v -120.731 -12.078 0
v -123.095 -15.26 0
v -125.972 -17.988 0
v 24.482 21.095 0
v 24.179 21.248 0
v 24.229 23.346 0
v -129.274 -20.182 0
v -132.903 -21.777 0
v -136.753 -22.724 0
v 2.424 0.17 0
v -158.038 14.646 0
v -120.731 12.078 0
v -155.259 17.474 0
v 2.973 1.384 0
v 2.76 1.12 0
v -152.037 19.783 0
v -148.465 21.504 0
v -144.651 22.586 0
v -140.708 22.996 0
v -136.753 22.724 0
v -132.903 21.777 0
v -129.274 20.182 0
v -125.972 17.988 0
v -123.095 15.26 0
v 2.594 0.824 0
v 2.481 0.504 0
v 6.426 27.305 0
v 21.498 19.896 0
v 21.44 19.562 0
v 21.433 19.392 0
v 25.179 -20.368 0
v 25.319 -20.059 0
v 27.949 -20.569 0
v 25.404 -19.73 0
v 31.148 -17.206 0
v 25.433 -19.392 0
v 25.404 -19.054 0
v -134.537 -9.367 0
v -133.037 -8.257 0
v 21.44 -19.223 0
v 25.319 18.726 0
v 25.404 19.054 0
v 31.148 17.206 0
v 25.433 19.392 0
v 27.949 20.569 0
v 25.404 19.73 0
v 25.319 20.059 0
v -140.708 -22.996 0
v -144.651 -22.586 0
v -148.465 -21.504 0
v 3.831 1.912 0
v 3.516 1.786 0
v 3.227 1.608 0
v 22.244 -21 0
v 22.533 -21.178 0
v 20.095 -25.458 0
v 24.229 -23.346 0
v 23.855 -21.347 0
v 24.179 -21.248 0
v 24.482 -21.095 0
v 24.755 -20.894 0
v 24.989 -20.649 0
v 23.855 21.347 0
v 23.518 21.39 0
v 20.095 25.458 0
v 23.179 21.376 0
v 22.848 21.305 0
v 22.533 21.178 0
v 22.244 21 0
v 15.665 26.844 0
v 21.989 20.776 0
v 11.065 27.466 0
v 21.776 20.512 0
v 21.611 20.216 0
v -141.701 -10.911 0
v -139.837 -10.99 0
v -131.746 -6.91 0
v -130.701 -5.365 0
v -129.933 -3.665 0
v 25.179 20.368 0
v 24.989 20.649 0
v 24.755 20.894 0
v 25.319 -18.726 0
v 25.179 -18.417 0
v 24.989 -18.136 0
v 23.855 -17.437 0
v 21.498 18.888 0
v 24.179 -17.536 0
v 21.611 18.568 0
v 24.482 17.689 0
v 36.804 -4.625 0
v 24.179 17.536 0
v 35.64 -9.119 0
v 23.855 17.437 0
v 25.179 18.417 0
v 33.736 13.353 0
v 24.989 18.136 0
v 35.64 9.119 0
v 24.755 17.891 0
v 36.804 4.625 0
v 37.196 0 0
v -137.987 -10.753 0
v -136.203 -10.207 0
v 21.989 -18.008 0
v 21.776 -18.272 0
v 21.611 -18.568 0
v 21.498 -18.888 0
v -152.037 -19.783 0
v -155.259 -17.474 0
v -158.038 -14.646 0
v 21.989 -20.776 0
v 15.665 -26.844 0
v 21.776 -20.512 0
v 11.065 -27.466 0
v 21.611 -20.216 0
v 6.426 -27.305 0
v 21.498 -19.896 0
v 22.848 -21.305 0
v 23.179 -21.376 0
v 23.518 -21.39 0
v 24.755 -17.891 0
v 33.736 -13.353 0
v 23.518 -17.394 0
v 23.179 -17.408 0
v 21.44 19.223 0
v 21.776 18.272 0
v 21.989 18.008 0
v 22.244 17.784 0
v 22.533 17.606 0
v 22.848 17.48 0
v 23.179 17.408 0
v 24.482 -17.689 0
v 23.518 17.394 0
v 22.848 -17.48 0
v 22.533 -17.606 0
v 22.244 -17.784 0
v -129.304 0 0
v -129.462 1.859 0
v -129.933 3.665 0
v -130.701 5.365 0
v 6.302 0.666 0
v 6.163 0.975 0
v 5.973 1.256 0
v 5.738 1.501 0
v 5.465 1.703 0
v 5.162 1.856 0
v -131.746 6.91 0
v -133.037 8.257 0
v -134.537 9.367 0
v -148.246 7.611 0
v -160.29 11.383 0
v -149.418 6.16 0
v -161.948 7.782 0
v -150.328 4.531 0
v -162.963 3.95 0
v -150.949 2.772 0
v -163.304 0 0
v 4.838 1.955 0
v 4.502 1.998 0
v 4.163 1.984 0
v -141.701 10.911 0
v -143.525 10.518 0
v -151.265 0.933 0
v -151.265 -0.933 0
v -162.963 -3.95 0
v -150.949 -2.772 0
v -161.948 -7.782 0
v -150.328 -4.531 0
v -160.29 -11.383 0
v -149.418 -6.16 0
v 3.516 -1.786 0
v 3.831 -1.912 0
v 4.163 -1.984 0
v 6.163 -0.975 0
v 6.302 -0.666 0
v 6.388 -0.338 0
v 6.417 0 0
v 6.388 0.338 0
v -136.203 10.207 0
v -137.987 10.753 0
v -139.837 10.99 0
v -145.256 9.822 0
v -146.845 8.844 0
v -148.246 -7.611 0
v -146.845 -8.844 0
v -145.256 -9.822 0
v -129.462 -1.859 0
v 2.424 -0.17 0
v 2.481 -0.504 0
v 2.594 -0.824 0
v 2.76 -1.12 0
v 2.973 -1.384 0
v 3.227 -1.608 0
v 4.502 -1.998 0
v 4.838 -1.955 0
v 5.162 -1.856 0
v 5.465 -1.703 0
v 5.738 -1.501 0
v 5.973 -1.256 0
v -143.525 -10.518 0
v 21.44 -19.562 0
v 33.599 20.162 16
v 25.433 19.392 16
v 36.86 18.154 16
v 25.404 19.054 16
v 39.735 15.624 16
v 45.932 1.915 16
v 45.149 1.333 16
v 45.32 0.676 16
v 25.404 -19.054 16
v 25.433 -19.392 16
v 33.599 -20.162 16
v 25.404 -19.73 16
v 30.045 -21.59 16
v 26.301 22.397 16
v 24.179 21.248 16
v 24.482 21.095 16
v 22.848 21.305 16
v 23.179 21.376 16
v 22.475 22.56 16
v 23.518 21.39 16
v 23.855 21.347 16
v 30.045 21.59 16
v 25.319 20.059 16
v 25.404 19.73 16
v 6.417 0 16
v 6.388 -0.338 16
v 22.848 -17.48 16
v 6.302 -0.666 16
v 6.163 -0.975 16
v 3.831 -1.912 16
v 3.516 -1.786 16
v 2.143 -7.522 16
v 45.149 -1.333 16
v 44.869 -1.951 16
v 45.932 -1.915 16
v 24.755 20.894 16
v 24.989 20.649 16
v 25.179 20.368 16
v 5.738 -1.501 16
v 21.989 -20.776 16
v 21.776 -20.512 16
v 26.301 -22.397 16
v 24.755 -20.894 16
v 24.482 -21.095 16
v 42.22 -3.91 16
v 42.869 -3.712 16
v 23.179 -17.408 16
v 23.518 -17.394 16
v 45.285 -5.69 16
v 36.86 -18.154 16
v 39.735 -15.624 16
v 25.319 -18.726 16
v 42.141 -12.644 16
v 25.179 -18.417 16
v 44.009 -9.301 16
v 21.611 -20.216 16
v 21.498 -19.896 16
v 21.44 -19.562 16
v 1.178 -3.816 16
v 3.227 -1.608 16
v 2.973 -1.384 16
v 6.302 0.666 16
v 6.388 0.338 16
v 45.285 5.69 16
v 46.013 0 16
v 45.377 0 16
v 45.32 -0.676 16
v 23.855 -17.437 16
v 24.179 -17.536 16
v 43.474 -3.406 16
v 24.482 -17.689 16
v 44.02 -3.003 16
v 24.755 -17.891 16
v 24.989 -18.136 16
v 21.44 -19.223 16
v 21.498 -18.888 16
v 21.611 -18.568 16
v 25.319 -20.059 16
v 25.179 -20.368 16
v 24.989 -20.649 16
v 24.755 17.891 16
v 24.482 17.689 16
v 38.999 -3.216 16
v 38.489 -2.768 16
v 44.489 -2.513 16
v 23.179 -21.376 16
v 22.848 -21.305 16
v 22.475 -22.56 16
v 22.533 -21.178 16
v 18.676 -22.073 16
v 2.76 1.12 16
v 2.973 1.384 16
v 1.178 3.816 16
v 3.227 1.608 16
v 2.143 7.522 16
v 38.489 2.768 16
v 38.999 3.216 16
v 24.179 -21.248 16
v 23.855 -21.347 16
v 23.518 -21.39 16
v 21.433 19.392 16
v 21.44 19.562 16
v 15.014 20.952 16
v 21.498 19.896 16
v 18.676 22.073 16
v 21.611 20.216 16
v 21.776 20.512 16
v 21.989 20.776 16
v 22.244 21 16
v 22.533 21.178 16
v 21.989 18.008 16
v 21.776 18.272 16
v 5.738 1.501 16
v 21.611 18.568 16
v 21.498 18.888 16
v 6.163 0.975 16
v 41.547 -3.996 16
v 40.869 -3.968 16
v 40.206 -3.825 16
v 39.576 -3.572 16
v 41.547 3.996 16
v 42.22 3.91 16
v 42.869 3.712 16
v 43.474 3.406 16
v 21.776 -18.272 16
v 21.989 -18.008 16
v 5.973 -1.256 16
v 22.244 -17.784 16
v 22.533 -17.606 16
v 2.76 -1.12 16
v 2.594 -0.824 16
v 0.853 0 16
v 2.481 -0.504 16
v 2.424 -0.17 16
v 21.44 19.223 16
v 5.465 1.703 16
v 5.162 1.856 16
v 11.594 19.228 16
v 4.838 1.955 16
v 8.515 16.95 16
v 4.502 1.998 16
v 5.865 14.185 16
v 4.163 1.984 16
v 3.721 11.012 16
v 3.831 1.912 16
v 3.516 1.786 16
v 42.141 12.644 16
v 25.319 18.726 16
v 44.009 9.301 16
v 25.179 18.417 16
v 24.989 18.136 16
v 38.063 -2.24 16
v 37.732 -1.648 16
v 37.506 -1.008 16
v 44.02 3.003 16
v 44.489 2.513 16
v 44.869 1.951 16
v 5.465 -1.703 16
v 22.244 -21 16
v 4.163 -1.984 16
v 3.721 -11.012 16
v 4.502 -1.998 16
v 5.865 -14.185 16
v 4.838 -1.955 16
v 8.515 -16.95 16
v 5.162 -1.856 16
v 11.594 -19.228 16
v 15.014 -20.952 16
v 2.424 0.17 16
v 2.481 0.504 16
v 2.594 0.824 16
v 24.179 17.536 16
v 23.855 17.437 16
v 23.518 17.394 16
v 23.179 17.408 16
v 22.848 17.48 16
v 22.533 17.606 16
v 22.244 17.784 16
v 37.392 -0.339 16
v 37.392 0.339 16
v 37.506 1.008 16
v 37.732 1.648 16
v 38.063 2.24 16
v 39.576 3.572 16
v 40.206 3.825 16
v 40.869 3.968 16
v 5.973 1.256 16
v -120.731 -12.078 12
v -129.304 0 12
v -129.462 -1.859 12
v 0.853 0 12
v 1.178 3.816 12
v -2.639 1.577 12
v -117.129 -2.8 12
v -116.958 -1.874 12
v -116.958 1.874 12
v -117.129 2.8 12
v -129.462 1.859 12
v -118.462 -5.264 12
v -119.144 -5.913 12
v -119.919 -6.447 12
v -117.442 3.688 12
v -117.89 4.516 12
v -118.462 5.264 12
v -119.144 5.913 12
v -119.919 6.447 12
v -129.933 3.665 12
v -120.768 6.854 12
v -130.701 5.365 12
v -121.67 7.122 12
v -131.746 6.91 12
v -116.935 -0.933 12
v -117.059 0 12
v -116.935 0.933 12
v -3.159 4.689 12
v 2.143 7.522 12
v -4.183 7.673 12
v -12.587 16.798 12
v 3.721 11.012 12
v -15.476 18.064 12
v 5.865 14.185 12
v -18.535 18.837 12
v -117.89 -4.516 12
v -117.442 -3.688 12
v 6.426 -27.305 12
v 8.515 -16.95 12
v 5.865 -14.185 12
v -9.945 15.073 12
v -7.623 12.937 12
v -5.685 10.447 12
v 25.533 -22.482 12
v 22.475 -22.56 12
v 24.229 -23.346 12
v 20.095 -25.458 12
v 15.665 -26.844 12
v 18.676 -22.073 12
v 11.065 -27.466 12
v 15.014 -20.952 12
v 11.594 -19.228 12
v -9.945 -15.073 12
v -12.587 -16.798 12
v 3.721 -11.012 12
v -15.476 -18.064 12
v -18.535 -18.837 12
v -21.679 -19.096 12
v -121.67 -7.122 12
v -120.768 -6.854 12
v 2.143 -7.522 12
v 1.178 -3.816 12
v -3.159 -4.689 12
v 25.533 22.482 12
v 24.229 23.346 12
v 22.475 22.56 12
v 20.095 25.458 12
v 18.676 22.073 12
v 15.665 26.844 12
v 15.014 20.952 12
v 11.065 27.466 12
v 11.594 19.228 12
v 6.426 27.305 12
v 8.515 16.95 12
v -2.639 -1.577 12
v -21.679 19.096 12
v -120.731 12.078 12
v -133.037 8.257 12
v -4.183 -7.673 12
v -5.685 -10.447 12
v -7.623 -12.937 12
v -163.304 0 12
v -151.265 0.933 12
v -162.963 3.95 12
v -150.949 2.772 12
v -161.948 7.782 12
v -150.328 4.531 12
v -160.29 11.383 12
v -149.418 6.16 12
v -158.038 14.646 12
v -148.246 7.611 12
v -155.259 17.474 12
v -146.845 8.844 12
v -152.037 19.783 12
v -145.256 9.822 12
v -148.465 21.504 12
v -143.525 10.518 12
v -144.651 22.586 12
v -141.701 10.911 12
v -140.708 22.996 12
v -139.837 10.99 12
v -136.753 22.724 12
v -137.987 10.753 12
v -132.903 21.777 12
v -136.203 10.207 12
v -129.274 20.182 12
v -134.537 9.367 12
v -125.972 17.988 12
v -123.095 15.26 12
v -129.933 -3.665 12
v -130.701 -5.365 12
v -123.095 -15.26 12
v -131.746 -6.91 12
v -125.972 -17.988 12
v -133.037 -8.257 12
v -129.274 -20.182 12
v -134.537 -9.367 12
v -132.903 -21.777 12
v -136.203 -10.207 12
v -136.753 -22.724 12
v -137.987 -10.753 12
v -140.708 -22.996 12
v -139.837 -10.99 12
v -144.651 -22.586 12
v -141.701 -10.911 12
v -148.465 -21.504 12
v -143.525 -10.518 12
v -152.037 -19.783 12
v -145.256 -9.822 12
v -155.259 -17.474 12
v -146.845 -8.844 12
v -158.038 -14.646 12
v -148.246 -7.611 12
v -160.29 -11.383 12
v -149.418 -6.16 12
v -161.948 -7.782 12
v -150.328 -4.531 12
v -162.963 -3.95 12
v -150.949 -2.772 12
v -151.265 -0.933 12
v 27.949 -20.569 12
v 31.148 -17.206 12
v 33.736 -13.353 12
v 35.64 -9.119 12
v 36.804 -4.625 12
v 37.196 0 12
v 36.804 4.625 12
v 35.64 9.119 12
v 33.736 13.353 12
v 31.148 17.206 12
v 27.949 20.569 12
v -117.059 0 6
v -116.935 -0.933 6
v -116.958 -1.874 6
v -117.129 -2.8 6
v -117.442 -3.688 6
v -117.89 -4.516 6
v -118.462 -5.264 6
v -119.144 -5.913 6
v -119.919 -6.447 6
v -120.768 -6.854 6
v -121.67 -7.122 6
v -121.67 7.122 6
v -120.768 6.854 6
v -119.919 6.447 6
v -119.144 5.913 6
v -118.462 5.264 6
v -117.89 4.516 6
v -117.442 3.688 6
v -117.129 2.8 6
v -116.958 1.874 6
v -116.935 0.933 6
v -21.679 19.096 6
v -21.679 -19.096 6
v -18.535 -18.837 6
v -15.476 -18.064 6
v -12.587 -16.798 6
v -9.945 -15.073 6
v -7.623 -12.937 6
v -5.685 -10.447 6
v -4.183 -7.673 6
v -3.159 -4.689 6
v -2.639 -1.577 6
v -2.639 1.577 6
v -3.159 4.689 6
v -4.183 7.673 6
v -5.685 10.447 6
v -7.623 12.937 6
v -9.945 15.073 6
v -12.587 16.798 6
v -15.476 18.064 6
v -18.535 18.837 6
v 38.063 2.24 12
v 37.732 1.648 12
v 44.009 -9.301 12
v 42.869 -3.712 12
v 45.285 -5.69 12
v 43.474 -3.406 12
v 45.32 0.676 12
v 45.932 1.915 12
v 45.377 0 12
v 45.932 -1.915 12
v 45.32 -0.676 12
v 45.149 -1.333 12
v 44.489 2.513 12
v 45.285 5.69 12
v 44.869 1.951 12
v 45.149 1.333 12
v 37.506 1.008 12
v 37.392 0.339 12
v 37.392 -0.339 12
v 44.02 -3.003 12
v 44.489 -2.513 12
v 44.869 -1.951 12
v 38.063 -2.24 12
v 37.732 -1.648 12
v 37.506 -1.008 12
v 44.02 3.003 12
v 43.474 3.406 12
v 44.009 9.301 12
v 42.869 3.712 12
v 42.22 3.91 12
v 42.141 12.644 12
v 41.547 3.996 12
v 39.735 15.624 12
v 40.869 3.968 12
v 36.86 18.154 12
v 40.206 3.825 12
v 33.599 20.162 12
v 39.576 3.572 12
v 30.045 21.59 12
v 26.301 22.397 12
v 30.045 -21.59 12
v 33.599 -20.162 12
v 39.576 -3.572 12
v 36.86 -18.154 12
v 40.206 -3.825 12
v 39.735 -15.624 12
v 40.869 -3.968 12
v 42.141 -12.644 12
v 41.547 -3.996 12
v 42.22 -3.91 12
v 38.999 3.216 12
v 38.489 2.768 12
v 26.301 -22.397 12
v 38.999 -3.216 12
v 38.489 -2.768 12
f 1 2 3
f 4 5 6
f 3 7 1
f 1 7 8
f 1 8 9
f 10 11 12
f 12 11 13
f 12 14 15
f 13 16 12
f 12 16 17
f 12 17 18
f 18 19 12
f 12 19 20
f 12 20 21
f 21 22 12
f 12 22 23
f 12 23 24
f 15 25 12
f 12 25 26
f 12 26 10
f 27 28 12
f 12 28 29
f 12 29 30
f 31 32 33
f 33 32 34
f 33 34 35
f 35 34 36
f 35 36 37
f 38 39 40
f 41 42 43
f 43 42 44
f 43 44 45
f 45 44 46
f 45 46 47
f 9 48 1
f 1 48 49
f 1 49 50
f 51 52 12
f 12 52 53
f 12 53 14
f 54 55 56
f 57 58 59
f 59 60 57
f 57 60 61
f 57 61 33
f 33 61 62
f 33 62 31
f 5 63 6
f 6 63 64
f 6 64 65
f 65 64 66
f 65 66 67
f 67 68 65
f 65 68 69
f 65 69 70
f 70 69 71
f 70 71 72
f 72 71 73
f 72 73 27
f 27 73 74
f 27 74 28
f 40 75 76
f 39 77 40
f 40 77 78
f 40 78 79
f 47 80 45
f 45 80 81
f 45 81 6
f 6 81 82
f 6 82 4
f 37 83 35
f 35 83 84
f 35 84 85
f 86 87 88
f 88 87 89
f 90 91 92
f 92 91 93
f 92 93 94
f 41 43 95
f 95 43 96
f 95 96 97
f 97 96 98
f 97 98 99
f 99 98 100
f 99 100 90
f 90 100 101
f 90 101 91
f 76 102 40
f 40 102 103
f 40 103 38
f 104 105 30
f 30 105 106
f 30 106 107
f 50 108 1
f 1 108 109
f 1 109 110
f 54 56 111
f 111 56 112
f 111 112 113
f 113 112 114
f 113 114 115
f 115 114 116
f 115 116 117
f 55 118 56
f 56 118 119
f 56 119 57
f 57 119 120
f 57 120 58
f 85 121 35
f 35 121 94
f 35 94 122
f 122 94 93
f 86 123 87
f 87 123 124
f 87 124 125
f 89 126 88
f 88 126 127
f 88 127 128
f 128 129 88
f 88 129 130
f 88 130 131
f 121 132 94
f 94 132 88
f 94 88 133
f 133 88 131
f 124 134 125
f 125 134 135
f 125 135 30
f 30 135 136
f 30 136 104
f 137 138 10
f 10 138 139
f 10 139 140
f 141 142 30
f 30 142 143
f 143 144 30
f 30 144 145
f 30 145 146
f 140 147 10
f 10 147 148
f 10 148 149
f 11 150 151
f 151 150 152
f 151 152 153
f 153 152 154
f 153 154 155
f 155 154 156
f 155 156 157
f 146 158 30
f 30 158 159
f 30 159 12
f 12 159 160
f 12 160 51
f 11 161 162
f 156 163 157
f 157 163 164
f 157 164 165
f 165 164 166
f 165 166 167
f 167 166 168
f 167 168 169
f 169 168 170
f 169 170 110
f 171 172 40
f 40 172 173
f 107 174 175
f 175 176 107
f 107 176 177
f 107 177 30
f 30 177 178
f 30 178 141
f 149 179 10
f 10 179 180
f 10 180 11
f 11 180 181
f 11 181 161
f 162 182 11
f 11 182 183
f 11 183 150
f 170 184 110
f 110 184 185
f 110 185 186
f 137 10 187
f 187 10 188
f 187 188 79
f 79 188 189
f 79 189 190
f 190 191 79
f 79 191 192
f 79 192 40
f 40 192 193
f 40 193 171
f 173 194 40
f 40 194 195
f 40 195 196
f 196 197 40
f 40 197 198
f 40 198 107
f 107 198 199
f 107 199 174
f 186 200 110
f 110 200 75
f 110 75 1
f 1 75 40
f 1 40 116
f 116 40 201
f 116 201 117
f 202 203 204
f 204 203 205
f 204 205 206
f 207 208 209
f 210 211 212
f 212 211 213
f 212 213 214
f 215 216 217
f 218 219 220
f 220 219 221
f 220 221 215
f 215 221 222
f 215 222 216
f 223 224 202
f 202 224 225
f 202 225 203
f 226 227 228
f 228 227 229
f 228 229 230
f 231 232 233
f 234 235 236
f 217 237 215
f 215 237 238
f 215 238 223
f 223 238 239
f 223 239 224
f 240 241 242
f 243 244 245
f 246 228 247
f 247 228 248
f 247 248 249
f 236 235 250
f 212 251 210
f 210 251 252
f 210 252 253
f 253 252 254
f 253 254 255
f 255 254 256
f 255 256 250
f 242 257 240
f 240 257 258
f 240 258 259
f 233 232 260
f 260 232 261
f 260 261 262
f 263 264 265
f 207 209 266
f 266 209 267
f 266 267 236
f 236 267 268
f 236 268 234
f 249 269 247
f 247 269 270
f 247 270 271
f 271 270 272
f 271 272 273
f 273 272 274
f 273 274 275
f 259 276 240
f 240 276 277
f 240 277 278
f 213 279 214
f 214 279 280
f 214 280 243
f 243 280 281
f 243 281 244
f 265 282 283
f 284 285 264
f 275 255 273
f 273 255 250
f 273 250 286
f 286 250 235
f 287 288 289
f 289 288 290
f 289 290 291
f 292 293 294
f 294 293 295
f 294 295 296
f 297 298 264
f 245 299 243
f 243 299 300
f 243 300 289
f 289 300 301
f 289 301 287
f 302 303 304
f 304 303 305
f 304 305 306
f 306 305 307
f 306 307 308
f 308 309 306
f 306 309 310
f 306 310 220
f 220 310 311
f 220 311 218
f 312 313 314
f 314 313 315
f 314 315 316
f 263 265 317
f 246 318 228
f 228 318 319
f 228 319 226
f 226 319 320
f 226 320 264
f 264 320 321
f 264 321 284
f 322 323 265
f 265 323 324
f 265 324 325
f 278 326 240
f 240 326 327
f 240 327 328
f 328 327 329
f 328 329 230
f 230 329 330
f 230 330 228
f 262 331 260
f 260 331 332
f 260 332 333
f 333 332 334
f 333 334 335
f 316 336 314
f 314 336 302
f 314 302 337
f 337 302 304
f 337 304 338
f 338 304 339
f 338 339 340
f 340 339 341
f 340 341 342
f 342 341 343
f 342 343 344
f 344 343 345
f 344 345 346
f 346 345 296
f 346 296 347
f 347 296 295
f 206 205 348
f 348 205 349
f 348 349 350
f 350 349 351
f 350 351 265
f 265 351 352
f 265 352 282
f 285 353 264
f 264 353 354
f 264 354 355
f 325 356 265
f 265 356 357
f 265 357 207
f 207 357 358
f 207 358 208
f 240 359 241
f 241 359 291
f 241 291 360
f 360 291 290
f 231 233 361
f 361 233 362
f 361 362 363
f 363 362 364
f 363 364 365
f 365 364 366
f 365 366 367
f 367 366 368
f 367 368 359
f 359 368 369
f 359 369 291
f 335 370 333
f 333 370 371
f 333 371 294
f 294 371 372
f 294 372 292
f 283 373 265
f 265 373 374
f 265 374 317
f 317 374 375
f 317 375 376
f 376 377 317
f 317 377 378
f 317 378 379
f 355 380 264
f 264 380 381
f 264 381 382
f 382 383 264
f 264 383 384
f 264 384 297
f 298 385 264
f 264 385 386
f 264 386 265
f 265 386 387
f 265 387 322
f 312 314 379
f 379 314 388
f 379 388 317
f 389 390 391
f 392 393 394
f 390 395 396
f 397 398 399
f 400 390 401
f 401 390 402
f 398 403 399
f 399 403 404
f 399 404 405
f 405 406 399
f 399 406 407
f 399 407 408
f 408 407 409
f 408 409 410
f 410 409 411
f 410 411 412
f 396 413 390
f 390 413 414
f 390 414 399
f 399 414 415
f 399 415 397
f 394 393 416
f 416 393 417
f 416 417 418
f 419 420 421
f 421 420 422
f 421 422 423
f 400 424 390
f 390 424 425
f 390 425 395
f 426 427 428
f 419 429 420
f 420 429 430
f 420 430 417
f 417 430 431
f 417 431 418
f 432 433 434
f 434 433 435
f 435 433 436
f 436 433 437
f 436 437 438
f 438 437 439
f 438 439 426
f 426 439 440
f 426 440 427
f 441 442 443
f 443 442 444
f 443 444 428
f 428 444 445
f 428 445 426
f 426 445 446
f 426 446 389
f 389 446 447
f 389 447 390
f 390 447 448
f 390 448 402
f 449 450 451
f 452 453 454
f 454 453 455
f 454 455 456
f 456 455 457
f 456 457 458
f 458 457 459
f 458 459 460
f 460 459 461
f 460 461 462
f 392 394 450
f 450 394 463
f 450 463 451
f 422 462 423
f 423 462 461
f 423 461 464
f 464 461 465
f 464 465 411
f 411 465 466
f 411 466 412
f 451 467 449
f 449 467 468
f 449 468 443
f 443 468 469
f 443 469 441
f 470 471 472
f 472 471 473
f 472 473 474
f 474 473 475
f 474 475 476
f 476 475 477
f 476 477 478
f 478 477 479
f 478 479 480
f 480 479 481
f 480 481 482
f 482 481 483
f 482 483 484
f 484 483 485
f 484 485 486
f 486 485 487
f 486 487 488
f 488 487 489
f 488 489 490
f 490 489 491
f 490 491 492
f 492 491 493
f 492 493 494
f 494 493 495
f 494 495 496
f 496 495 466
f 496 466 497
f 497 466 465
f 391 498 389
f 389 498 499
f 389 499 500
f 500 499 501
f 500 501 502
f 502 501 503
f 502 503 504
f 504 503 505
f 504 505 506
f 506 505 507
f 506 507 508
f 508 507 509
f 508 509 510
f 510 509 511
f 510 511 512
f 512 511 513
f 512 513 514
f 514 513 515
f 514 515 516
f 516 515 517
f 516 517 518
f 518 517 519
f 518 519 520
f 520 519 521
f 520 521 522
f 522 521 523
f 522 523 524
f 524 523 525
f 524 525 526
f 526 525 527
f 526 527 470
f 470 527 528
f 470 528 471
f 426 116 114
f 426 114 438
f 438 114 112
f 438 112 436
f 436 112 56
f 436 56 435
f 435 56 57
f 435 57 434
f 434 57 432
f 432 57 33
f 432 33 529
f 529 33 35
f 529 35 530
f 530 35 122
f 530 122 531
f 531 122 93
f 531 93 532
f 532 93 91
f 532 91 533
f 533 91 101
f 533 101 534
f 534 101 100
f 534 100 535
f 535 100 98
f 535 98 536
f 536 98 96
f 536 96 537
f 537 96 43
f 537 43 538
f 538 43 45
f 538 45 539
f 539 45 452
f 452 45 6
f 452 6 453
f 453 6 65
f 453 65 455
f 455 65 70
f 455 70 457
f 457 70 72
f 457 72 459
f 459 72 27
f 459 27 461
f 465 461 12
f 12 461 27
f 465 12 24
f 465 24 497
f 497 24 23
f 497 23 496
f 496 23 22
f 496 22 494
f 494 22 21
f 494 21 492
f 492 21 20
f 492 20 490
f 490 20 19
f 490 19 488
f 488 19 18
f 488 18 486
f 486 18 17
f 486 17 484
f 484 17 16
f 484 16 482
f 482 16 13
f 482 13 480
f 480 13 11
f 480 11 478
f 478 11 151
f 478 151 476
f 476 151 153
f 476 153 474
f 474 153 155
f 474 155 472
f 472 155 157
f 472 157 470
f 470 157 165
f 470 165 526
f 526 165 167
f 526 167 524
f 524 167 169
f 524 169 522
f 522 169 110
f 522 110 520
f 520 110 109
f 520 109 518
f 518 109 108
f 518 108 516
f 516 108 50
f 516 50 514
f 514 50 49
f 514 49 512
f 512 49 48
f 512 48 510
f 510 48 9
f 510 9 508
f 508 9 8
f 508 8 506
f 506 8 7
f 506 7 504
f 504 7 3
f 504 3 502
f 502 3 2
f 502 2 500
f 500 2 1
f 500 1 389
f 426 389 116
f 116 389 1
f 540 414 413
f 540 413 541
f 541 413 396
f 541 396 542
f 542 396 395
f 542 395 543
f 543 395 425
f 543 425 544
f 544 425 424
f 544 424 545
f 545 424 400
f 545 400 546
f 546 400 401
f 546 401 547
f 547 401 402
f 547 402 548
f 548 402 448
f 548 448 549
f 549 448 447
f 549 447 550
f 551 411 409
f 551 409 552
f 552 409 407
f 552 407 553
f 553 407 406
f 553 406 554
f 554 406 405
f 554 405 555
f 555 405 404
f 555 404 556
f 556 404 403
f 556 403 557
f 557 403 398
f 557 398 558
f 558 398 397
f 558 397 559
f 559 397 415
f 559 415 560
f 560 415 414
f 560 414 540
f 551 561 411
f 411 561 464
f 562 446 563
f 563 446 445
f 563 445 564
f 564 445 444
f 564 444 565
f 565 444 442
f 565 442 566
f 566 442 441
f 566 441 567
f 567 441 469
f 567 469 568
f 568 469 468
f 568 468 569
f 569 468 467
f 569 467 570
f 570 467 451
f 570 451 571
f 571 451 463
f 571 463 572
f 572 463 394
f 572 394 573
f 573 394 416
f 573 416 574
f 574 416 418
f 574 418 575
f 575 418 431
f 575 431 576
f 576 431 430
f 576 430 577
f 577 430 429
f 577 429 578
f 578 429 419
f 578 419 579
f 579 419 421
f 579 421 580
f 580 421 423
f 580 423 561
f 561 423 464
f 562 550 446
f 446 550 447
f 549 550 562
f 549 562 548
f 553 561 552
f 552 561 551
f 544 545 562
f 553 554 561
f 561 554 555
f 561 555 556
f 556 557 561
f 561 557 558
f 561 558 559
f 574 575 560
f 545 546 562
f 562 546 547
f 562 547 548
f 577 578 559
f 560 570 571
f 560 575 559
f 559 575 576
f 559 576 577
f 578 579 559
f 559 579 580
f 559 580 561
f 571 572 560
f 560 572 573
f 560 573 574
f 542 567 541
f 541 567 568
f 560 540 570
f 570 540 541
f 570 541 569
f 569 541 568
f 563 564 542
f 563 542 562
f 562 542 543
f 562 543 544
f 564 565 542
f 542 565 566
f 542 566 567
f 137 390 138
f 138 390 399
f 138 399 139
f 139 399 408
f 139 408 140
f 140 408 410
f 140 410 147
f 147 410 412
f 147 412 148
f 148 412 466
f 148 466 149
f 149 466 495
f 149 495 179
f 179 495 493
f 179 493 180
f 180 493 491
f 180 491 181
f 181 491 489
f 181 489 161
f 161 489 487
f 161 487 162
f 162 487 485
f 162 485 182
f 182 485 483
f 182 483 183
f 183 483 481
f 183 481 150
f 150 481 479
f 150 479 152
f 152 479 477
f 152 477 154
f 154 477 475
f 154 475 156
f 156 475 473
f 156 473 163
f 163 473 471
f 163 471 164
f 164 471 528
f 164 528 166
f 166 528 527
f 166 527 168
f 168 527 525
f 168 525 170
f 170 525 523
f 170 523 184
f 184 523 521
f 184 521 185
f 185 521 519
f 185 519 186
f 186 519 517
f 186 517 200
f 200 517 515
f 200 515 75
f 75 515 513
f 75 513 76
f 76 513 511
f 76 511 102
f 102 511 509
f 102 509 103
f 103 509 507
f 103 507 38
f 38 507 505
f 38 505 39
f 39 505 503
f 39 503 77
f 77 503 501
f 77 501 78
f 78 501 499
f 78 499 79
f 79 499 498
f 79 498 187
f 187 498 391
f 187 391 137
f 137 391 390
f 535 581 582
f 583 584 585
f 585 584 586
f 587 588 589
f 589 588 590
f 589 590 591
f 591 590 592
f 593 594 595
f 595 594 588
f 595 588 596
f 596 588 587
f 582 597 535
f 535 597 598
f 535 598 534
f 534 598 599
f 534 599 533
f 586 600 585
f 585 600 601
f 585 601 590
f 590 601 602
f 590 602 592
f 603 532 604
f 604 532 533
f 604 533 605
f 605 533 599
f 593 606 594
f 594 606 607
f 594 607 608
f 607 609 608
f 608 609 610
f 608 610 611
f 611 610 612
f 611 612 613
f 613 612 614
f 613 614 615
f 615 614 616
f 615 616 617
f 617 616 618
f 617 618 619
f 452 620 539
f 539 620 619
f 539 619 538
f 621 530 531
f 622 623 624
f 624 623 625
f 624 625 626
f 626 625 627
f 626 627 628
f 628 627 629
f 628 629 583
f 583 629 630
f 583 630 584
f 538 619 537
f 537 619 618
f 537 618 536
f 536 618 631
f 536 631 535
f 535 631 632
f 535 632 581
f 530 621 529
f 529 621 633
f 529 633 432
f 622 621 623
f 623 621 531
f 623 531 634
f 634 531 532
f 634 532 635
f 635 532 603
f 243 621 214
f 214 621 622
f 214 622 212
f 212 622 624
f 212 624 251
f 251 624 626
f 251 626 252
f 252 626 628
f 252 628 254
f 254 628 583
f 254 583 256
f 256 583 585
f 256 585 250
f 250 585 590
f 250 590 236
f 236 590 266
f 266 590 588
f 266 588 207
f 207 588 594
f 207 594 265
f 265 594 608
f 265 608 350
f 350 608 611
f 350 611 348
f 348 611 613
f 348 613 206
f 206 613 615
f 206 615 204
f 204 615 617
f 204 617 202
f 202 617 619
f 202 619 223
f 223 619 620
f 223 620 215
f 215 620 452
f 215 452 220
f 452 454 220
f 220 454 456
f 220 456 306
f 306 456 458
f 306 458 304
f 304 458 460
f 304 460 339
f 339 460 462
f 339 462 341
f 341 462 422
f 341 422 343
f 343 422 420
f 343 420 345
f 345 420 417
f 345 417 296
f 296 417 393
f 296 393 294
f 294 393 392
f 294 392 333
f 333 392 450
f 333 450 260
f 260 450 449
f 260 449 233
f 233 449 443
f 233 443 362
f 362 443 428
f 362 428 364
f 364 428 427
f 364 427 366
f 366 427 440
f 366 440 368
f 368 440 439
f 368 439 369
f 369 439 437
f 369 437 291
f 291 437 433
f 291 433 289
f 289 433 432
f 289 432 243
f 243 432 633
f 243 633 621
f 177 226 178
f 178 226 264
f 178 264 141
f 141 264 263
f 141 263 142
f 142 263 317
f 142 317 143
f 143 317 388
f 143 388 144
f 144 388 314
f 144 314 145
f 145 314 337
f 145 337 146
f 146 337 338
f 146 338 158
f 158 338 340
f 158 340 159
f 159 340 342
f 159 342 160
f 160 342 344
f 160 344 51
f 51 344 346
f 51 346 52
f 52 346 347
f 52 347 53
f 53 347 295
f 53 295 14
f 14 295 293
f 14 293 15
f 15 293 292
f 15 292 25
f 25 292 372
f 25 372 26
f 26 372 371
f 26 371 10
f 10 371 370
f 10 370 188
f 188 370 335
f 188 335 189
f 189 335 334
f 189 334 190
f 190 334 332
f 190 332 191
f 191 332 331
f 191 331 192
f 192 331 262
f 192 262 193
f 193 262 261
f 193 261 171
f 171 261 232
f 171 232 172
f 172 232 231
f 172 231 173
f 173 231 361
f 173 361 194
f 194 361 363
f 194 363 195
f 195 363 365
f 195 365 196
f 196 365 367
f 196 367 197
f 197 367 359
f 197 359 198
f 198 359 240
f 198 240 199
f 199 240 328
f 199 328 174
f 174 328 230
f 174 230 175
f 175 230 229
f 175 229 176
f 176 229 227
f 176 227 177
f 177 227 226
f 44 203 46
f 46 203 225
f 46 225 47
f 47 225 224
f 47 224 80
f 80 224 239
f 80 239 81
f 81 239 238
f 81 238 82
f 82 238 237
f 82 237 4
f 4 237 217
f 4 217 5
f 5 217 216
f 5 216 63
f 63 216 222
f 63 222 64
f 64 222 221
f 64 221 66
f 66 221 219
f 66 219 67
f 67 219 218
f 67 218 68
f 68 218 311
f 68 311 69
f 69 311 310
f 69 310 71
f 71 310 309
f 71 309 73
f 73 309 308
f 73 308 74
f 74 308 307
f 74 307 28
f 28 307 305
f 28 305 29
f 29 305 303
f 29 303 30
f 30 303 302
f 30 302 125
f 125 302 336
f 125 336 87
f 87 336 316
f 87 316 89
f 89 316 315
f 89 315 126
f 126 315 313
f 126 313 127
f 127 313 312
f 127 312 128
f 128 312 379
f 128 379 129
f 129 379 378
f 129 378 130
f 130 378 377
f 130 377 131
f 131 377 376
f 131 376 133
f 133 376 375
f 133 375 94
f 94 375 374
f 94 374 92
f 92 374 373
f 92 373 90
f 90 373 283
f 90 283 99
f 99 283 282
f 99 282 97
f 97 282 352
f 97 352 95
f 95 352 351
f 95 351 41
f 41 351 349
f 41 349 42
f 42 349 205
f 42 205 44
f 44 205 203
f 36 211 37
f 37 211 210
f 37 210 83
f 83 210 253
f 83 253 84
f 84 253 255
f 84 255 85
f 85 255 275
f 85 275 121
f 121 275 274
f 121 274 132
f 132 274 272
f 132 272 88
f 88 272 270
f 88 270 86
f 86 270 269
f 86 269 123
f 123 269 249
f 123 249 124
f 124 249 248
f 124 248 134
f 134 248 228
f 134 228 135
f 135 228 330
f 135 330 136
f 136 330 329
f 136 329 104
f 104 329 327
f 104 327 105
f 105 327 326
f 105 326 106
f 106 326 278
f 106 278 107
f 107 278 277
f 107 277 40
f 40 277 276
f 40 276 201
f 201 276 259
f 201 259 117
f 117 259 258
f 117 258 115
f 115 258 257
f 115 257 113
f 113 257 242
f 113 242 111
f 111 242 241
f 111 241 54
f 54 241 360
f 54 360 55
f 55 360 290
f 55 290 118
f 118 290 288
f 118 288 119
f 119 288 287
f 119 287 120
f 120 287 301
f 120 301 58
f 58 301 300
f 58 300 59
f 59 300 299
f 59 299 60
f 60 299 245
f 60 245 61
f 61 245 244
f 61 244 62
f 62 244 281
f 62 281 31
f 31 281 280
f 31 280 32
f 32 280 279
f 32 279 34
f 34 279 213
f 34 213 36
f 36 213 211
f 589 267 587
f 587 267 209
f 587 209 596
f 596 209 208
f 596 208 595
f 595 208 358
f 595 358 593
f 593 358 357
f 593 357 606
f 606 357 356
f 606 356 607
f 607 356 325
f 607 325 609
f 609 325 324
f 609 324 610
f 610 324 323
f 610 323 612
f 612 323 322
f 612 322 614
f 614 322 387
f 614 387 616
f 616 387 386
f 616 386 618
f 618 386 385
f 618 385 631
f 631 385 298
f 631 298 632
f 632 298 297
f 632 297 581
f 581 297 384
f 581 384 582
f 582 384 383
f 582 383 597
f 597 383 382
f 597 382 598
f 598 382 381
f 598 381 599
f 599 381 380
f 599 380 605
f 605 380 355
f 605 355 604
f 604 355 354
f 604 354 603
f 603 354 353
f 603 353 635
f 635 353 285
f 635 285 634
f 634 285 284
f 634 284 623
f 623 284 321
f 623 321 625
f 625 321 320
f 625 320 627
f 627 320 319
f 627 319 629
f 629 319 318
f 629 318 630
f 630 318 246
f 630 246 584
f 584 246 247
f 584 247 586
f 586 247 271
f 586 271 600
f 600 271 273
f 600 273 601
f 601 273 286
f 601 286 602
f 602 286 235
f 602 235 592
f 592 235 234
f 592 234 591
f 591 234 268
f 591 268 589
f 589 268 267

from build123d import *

# Parameters (mm, degrees)
BOSS_EXTRUDE1_DEPTH     = 12
CUT_EXTRUDE1_DEPTH      = 6
SKETCH4_R               = 11
CUT_EXTRUDE2_DEPTH      = 12
SKETCH5_R               = 22.579968686
BOSS_EXTRUDE2_DEPTH     = 4
SKETCH6_R               = 2
CUT_EXTRUDE3_DEPTH      = 16
SKETCH6_3_R             = 2
CUT_EXTRUDE5_DEPTH      = 16
SKETCH7_R               = 4
CUT_EXTRUDE6_DEPTH      = 1
CUT_EXTRUDE6_DEPTH_BACK = 17


with BuildPart() as part:
    # Sketch1 → Boss-Extrude1 (new body)
    with BuildSketch(Plane.XY):
        with BuildLine():
            Line((6.425984457, 27.304915127), (-120.730550627, 12.077737738))
            ThreePointArc((-120.730550627, 12.077737738), (-163.304212807, 0), (-120.730550627, -12.077737738))
            Line((-120.730550627, -12.077737738), (6.425984457, -27.304915127))
            ThreePointArc((6.425984457, -27.304915127), (37.195787193, 0), (6.425984457, 27.304915127))
        make_face()
    extrude(amount=BOSS_EXTRUDE1_DEPTH)

    # Sketch3 → Cut-Extrude1 (cut)
    with BuildSketch(Plane.XY.offset(12)):
        with BuildLine():
            Line((-121.670322635, 7.122377923), (-21.678965717, 19.096486278))
            ThreePointArc((-21.678965717, 19.096486278), (-2.5738344, 0), (-21.678965717, -19.096486278))
            Line((-21.678965717, -19.096486278), (-121.670322635, -7.122377923))
            ThreePointArc((-121.670322635, -7.122377923), (-117.889637025, -4.516196787), (-117.059136947, 0))
            ThreePointArc((-117.059136947, 0), (-117.889637025, 4.516196787), (-121.670322635, 7.122377923))
        make_face()
    extrude(amount=-CUT_EXTRUDE1_DEPTH, mode=Mode.SUBTRACT)

    # Sketch4 → Cut-Extrude2 (cut)
    with BuildSketch(Plane.XY.offset(12)):
        with Locations((-140.304212807, 0)):
            Circle(SKETCH4_R)
    extrude(amount=-CUT_EXTRUDE2_DEPTH, mode=Mode.SUBTRACT)

    # Sketch5 → Boss-Extrude2 (add)
    with BuildSketch(Plane.XY.offset(12)):
        with Locations((23.433246409, 0)):
            Circle(SKETCH5_R)
    extrude(amount=BOSS_EXTRUDE2_DEPTH)

    # Sketch6 → Cut-Extrude3 (cut)
    with BuildSketch(Plane.XY.offset(16)):
        with Locations((4.416689948, 0)):
            Circle(SKETCH6_R)
    extrude(amount=-CUT_EXTRUDE3_DEPTH, mode=Mode.SUBTRACT)

    # Sketch6<3> → Cut-Extrude5 (cut)
    with BuildSketch(Plane.XY.offset(16)):
        with Locations((23.433246409, -19.392257926)):
            Circle(SKETCH6_3_R)
        with Locations((42.449802871, 0)):
            Circle(SKETCH6_3_R)
        with Locations((23.433246409, 19.392257926)):
            Circle(SKETCH6_3_R)
    extrude(amount=-CUT_EXTRUDE5_DEPTH, mode=Mode.SUBTRACT)

    # Sketch7 → Cut-Extrude6 (cut, two sides)
    with BuildSketch(Plane.XY.offset(16)) as cut_extrude6_sk:
        with Locations((41.377266411, 0)):
            Circle(SKETCH7_R)
    extrude(amount=CUT_EXTRUDE6_DEPTH, mode=Mode.SUBTRACT)
    extrude(cut_extrude6_sk.sketch, amount=-CUT_EXTRUDE6_DEPTH_BACK, mode=Mode.SUBTRACT)


solid = part.part
